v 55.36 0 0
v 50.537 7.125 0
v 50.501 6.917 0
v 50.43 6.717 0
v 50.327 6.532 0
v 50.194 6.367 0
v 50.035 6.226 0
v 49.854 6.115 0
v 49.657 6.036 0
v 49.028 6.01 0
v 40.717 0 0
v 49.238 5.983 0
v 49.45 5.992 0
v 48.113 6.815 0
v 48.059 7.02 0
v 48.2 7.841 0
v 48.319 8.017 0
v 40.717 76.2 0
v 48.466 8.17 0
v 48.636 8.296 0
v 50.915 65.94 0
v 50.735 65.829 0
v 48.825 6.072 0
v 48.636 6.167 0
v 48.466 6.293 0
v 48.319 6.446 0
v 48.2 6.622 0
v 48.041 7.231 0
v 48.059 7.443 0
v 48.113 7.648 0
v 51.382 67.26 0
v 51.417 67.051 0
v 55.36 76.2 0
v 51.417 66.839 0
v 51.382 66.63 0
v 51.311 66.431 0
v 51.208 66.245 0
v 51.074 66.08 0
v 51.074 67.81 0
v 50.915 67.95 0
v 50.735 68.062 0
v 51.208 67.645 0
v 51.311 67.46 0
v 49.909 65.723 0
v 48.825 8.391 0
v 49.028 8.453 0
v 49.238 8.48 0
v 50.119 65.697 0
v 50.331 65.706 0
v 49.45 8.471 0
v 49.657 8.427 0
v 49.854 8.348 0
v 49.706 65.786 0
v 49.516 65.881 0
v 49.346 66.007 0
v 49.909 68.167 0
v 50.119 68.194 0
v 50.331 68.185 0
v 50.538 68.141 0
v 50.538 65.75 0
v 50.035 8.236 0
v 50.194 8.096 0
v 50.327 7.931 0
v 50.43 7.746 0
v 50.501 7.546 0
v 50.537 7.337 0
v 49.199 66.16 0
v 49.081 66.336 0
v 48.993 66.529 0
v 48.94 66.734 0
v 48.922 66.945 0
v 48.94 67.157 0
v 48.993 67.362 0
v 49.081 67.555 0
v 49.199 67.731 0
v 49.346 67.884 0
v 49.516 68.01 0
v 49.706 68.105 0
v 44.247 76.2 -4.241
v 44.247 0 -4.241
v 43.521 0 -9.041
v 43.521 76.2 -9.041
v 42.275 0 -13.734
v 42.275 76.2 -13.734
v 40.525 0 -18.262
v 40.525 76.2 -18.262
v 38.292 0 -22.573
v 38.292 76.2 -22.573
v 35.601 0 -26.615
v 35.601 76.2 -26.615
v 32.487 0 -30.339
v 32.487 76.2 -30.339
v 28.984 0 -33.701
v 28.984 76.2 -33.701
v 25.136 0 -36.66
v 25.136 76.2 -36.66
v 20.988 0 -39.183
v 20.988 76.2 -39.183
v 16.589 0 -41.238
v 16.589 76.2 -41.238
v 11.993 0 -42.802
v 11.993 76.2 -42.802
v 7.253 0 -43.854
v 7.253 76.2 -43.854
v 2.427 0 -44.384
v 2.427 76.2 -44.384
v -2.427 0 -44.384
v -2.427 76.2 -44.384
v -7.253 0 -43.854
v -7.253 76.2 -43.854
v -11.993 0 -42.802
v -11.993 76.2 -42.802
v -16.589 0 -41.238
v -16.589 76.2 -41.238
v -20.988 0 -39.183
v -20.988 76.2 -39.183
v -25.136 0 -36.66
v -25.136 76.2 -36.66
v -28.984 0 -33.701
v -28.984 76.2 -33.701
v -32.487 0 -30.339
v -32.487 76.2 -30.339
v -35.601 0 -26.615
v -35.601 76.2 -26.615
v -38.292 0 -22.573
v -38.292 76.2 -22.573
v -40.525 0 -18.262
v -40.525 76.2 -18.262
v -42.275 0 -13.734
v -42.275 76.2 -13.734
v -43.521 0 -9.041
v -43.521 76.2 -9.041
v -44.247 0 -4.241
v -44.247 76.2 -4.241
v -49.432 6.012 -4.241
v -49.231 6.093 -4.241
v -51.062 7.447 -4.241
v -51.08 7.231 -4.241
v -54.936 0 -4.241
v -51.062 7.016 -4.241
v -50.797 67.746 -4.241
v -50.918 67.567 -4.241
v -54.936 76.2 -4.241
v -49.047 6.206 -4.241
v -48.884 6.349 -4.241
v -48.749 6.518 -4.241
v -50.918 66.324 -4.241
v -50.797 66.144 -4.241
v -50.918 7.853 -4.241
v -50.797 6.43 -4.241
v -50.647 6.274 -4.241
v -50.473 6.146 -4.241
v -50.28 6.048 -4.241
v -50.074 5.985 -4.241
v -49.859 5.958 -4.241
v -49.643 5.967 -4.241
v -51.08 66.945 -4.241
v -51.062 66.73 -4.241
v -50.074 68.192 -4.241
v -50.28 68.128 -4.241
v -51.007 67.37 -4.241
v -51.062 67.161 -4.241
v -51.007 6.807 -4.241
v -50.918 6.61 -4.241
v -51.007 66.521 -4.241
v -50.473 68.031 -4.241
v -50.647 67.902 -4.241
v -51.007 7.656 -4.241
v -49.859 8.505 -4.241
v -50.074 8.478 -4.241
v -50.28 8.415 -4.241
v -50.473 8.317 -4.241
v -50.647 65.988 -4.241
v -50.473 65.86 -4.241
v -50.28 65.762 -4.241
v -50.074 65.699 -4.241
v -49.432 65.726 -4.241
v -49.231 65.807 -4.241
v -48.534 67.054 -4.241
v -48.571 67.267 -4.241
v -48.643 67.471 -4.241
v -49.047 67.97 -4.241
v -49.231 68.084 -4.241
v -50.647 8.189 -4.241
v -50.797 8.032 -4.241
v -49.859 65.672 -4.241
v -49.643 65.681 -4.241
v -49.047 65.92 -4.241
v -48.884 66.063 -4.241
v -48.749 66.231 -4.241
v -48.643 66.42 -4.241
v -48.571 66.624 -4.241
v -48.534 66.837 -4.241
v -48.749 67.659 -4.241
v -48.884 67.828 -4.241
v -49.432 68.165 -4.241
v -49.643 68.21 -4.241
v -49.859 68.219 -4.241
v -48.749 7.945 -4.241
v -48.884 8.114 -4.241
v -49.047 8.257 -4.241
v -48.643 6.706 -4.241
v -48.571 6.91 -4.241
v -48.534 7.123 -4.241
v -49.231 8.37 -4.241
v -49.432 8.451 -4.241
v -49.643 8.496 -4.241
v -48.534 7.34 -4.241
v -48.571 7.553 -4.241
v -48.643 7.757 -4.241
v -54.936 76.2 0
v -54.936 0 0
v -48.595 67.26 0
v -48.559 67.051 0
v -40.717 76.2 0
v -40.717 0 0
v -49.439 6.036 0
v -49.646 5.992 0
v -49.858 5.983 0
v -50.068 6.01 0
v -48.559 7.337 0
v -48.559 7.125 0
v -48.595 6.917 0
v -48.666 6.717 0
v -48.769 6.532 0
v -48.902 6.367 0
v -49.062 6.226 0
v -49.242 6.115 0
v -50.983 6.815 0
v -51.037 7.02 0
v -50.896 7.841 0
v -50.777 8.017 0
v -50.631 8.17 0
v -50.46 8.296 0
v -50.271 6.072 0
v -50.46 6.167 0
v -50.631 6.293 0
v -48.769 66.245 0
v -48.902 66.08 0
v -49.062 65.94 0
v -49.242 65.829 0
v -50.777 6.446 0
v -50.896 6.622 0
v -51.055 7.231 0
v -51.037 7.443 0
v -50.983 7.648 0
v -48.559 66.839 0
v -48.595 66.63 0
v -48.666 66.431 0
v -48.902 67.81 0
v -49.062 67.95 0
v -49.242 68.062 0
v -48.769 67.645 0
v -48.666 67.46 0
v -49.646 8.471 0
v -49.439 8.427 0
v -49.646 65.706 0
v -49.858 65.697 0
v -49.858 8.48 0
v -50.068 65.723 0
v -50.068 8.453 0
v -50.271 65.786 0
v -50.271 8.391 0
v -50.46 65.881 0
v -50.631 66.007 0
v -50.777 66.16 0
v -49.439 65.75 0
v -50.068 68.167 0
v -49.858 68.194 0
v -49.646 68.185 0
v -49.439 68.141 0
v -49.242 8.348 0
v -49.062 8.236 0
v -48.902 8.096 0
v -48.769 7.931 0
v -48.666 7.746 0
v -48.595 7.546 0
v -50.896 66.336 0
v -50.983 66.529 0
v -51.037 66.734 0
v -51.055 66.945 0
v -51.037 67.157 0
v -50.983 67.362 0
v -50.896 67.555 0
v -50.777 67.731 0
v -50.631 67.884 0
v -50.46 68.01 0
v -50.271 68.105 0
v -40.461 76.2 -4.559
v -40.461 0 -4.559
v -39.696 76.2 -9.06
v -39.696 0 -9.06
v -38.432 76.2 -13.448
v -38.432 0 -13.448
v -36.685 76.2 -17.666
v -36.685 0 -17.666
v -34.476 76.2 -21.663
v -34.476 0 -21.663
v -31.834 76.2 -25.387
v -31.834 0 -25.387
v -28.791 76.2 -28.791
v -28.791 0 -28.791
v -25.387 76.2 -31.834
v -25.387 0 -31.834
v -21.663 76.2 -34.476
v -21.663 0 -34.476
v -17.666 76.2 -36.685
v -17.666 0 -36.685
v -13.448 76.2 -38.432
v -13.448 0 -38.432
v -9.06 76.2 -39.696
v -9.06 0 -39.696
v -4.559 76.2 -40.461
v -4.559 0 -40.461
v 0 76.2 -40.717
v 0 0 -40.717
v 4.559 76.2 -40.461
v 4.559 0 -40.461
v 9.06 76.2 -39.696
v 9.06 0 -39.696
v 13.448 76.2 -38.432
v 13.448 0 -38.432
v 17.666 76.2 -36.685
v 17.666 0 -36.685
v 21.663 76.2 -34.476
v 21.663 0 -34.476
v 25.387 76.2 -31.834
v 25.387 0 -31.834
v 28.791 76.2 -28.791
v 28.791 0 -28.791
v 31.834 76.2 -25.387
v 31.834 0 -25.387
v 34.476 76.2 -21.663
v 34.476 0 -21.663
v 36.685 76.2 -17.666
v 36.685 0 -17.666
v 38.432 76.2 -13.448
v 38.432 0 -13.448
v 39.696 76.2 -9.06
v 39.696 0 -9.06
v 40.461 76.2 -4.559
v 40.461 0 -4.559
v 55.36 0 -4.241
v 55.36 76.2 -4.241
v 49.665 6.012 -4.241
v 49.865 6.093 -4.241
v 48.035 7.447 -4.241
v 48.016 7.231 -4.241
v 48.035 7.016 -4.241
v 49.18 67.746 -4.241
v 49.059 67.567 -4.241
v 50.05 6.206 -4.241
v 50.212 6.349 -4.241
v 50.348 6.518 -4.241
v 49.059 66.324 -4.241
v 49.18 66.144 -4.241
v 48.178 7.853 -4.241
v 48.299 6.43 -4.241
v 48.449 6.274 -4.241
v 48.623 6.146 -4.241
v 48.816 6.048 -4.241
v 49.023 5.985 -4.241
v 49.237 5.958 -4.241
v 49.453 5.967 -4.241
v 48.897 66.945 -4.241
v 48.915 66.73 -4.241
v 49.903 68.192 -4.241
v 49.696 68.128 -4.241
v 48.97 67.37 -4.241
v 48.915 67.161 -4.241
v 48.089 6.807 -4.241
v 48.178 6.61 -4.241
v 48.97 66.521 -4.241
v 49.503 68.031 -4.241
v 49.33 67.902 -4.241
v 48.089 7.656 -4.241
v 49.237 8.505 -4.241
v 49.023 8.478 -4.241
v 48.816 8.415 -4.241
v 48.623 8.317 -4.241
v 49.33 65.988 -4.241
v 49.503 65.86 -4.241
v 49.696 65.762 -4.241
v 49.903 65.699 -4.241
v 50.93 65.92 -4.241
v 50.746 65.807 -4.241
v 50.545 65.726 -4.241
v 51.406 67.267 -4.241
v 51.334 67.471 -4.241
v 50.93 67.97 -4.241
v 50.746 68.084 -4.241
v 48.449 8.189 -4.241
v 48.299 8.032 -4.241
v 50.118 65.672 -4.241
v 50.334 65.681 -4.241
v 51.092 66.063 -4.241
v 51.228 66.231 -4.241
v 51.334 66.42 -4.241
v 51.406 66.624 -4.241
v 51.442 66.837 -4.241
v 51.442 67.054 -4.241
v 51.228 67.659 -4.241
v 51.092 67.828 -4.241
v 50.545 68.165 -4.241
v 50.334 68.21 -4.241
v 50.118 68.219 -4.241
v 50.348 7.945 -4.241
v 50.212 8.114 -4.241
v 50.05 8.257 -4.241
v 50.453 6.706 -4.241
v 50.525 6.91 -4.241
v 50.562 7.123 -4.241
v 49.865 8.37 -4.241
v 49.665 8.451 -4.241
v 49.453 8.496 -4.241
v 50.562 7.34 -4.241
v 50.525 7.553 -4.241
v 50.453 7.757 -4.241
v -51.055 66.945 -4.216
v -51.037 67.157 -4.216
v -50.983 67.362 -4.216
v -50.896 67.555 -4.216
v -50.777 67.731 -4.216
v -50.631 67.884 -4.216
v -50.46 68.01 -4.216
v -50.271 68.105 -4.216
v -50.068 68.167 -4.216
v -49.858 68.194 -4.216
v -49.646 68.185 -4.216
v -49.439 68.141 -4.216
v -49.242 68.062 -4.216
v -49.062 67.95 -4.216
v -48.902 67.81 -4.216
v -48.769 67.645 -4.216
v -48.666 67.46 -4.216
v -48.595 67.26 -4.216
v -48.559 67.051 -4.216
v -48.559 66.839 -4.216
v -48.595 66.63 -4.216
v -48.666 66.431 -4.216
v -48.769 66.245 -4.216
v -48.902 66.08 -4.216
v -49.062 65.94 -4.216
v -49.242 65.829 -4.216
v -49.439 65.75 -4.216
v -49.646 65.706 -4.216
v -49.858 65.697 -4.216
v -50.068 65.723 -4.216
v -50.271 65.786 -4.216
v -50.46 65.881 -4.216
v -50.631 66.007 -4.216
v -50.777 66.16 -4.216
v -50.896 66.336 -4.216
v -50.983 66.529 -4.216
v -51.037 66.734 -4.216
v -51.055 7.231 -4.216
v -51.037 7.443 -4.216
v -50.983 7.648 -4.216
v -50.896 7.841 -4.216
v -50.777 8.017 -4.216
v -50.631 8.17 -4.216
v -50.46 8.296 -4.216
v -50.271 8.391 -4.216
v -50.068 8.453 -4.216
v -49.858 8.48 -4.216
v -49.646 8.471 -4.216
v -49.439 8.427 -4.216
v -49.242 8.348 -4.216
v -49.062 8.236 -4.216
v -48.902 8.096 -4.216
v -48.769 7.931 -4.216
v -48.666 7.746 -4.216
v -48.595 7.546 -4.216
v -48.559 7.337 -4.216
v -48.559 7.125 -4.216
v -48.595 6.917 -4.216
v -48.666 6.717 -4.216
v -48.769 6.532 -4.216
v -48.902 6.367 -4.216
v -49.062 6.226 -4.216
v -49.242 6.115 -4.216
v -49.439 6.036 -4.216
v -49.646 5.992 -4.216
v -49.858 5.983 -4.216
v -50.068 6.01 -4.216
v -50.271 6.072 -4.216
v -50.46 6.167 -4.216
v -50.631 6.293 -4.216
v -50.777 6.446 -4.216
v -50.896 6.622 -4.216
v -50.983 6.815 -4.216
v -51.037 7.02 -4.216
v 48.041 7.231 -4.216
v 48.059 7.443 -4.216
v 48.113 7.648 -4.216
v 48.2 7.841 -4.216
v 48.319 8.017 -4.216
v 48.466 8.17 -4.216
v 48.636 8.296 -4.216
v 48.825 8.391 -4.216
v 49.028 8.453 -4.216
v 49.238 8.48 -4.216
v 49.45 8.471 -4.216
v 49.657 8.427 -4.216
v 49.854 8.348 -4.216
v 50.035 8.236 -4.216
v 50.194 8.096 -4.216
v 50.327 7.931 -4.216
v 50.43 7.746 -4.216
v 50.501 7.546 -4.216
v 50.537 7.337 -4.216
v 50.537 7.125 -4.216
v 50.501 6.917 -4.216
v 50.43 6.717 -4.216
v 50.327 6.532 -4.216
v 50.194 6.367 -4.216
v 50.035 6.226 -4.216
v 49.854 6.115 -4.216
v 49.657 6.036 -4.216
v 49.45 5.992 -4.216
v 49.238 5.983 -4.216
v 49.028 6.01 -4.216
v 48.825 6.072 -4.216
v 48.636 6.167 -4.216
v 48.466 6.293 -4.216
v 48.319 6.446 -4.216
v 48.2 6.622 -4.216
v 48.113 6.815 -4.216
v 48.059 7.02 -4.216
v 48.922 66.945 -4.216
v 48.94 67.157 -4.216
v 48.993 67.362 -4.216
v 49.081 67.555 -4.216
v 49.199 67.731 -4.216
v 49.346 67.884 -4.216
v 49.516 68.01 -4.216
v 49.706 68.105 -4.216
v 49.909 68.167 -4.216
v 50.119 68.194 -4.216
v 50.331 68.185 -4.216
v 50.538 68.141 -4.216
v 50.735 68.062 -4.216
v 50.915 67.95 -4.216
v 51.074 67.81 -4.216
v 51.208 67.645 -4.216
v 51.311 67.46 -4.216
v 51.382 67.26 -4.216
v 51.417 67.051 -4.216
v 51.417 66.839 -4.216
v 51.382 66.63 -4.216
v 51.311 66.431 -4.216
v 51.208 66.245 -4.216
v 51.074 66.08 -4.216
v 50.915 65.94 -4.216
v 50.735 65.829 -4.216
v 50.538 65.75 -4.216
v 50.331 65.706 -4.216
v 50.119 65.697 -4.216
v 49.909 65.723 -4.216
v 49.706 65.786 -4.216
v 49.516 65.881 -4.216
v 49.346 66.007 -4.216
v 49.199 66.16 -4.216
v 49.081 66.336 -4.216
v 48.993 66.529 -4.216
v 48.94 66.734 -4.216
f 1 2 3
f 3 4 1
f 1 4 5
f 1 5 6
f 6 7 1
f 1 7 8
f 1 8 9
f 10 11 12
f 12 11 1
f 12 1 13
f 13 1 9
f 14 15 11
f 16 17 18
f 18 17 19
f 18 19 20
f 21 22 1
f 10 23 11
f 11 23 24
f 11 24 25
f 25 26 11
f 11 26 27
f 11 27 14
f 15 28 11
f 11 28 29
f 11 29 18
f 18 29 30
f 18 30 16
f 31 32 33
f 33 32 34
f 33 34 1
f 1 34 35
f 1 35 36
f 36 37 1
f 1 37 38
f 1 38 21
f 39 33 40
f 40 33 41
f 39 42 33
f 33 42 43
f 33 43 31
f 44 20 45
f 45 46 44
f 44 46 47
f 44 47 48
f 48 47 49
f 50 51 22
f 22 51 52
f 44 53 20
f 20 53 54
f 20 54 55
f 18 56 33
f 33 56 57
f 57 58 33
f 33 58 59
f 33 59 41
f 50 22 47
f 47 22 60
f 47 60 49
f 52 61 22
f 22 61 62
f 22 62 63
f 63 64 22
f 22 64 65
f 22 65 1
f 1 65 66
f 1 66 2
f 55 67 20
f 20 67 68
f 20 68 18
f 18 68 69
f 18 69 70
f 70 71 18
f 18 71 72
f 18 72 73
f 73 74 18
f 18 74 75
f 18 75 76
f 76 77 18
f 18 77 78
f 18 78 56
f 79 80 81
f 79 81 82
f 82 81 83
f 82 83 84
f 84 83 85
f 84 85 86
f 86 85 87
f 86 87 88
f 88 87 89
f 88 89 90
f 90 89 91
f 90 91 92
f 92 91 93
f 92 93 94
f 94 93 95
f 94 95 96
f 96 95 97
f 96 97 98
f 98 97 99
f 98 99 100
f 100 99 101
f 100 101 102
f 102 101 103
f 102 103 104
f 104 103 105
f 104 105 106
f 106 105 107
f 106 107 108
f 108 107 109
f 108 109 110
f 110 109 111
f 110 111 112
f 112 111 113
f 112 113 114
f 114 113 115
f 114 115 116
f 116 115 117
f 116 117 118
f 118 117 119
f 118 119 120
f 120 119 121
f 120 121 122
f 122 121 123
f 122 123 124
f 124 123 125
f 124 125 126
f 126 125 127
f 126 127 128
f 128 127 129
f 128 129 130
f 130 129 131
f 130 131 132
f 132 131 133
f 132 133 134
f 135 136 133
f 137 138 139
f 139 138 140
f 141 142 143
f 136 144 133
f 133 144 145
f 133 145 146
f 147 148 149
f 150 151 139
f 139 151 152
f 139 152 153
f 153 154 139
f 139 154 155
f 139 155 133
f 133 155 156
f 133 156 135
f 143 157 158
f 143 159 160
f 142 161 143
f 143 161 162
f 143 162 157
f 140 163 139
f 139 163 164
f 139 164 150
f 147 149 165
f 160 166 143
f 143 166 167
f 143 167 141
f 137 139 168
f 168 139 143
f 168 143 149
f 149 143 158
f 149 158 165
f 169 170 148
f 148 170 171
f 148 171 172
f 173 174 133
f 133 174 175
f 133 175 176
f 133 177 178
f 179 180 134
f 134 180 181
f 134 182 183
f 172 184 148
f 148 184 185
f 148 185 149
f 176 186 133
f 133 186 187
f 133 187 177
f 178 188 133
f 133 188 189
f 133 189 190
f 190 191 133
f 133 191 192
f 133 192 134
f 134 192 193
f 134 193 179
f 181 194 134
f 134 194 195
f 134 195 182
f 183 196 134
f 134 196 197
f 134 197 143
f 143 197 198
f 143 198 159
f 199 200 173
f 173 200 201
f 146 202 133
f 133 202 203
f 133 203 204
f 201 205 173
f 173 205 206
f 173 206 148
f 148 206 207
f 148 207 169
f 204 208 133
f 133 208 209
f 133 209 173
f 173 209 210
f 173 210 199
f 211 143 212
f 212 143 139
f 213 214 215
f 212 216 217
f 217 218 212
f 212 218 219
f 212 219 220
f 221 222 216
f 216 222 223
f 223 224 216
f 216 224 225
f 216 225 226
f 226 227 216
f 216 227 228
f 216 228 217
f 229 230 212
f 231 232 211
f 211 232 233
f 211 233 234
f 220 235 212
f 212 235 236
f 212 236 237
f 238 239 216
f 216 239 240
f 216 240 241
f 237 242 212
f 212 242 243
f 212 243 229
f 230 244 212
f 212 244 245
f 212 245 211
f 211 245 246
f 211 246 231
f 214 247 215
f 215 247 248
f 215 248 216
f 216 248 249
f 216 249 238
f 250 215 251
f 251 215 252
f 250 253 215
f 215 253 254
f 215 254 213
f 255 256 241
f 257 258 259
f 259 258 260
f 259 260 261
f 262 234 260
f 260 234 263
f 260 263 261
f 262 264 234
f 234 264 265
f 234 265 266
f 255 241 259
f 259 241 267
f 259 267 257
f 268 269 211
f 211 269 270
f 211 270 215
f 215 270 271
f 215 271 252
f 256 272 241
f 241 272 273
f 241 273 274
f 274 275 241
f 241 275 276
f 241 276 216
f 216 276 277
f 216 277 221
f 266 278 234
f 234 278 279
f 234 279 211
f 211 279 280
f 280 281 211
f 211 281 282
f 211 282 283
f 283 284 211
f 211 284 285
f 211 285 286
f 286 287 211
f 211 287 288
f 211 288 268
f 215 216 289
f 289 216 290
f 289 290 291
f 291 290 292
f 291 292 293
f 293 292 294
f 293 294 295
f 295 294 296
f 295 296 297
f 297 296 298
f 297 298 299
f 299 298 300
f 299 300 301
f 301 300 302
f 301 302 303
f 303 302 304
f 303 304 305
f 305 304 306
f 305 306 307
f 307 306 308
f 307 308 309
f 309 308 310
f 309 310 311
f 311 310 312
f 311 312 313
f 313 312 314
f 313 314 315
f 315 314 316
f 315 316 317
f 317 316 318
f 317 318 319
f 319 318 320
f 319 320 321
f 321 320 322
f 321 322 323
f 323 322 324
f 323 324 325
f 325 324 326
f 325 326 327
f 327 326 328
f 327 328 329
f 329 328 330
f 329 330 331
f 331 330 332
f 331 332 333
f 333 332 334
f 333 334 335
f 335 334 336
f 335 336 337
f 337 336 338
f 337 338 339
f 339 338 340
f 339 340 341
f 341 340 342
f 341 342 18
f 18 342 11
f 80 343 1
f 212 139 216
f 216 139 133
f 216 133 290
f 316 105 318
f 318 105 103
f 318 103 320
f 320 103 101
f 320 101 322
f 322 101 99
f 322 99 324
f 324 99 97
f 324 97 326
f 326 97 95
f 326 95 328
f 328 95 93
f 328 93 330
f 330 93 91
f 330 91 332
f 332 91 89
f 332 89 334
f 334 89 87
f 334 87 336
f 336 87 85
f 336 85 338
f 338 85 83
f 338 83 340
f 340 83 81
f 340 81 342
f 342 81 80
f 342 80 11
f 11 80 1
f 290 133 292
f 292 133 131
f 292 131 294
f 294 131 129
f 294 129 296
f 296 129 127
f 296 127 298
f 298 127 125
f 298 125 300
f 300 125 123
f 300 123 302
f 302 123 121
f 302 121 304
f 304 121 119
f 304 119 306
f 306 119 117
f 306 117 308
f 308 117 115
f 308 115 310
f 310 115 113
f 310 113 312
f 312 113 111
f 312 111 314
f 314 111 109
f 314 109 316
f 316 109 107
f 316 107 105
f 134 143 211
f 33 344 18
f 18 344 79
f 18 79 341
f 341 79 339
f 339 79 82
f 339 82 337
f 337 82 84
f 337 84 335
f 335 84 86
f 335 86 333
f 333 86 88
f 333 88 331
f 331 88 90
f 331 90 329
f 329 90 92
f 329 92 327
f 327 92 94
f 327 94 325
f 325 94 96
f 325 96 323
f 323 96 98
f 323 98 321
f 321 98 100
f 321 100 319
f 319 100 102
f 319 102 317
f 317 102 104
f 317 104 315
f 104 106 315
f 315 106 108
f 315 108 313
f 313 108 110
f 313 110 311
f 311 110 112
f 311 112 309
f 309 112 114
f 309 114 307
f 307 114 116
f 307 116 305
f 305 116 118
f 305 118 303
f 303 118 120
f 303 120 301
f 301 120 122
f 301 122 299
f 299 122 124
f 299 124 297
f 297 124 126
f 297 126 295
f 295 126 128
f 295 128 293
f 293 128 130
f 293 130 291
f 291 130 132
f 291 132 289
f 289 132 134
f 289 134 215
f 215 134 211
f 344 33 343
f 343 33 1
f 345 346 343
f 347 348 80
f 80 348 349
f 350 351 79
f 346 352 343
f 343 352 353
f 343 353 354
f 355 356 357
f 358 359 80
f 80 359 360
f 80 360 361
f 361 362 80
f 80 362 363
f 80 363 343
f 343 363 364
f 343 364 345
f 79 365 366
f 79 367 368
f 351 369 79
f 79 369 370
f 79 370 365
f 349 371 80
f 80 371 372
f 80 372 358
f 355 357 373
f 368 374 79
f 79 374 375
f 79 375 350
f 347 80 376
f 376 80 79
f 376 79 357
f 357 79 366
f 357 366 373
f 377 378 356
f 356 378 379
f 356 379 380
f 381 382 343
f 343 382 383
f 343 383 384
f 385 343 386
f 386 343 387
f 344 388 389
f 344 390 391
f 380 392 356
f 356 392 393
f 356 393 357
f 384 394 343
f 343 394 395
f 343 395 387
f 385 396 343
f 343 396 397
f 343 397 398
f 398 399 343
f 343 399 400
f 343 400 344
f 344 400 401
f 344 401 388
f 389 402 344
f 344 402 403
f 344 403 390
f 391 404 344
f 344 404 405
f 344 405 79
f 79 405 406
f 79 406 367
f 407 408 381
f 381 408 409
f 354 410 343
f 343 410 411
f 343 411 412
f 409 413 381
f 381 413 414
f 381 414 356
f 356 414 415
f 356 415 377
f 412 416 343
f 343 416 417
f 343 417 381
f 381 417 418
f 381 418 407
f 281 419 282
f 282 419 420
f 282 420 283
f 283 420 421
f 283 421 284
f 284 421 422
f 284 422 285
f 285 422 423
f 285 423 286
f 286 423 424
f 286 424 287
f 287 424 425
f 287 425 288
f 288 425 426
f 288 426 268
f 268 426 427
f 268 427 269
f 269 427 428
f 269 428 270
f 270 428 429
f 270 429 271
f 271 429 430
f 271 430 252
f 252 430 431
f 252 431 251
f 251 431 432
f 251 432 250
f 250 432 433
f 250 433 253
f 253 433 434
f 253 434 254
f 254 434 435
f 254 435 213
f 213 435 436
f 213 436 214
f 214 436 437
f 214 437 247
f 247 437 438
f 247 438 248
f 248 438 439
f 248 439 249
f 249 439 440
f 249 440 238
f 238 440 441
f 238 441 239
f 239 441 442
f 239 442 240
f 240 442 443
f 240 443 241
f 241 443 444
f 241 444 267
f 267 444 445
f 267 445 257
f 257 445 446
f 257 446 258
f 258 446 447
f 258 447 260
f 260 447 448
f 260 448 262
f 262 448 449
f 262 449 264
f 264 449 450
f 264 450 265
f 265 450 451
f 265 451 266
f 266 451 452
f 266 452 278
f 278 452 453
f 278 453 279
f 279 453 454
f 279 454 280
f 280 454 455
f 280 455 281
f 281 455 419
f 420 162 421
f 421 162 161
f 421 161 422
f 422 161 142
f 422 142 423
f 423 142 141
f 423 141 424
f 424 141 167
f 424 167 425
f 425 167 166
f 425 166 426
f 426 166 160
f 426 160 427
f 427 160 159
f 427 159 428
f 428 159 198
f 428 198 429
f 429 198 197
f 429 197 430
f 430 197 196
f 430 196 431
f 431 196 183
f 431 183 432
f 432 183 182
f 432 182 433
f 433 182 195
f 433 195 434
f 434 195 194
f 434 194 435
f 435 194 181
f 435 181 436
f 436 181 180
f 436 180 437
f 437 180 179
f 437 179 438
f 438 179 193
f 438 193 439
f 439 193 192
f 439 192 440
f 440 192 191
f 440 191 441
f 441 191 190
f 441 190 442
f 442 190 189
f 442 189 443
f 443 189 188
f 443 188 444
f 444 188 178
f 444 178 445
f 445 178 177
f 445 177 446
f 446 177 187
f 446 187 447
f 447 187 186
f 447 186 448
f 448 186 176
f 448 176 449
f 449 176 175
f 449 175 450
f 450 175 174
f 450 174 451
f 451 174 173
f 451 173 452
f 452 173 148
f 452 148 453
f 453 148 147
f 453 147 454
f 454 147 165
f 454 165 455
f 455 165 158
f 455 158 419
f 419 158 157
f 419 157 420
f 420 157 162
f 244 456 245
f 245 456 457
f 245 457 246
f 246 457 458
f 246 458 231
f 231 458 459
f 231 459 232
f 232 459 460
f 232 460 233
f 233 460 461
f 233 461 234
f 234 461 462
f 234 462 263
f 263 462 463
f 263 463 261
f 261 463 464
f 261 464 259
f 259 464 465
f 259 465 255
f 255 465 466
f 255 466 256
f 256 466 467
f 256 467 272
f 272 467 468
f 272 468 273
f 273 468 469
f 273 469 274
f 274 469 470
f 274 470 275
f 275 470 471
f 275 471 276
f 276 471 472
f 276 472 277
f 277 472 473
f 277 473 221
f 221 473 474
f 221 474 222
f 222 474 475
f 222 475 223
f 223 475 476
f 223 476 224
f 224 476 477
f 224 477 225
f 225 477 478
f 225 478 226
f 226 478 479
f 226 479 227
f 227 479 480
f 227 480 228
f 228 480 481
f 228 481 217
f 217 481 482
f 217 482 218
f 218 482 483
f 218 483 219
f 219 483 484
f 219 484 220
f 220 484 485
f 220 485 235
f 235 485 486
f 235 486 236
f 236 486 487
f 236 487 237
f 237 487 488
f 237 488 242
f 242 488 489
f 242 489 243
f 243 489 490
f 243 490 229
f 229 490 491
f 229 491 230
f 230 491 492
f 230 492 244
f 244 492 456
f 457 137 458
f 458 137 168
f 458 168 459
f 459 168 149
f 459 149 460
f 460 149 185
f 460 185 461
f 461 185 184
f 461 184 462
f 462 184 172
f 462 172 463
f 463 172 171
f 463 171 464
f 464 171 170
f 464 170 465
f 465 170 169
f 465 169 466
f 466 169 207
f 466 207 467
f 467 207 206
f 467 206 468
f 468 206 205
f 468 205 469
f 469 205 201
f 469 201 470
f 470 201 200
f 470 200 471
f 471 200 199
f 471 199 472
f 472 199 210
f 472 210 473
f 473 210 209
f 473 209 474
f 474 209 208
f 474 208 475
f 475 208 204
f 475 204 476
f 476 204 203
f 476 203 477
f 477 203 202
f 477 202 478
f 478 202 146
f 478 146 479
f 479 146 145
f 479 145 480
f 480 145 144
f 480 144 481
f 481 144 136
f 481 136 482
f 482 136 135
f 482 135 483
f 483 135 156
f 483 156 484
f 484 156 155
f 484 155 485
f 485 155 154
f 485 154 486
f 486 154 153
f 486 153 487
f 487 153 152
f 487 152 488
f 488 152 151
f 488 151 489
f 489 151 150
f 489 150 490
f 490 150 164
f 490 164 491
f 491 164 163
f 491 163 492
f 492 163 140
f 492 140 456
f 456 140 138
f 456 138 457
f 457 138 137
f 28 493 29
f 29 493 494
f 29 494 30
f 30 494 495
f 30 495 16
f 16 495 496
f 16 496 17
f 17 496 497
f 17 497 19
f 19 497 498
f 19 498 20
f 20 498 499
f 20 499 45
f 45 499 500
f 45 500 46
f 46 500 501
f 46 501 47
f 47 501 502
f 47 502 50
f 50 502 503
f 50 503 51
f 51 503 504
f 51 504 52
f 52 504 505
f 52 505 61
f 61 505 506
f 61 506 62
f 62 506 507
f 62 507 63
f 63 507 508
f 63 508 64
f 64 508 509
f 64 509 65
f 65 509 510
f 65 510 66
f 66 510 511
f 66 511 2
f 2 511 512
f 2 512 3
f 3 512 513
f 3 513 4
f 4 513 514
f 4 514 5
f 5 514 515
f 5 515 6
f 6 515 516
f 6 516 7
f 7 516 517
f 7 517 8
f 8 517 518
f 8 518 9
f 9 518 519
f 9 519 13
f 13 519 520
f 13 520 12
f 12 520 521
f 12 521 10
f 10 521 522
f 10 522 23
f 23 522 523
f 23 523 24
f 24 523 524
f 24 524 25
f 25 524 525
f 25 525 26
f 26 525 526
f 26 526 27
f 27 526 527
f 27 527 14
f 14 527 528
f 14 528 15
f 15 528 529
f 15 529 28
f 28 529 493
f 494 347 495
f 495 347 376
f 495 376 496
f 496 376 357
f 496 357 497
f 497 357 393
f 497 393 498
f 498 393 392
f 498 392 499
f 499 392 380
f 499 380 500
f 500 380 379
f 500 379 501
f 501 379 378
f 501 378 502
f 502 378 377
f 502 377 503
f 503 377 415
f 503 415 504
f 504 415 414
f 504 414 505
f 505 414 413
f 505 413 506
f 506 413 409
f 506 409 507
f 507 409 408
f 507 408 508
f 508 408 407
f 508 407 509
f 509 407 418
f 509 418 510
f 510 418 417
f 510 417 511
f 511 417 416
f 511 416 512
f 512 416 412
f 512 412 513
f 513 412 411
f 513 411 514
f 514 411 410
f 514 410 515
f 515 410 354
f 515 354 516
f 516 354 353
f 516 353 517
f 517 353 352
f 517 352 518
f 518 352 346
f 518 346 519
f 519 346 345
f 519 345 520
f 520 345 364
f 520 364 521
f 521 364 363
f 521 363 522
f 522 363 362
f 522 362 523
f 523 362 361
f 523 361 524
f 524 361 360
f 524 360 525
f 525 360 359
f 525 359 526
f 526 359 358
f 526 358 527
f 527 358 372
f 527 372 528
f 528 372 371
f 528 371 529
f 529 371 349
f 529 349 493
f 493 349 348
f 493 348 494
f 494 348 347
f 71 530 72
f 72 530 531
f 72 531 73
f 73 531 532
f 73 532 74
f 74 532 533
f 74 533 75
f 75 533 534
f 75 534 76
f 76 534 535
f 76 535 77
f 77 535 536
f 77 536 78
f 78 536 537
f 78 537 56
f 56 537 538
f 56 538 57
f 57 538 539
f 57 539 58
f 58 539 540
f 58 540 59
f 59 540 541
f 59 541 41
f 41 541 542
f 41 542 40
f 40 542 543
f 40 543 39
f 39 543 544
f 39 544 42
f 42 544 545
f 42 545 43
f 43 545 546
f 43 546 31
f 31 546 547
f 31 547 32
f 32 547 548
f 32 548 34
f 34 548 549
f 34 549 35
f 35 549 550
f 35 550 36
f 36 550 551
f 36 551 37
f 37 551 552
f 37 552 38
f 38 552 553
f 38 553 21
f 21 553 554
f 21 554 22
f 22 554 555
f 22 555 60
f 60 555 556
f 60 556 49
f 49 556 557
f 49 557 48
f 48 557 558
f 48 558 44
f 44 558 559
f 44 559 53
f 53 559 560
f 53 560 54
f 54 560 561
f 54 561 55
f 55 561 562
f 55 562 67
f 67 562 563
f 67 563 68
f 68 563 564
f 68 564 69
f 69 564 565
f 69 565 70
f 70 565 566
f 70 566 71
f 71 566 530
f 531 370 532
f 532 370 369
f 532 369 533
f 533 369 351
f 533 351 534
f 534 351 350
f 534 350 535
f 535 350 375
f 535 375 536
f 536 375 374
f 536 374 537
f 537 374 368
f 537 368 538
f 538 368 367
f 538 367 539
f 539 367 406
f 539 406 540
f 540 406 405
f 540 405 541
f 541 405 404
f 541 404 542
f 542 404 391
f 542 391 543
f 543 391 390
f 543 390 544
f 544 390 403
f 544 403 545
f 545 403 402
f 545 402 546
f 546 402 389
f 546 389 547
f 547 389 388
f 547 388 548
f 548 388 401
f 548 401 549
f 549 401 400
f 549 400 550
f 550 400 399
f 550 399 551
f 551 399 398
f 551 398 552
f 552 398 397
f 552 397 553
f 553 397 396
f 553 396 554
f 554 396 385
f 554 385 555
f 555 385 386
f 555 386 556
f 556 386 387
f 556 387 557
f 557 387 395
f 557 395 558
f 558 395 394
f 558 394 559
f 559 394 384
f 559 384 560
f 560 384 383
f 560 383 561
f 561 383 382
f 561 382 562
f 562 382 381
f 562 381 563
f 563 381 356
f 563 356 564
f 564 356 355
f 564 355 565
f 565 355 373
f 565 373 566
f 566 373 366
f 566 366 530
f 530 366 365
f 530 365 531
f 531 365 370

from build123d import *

# Parameters (mm, degrees)
BOSS_EXTRUDE1_DEPTH                   = 76.2
TAP_DRILL_FOR_M3X0_5_TAP1_D           = 2.5
TAP_DRILL_FOR_M3X0_5_TAP1_CSINK_D     = 2.55
TAP_DRILL_FOR_M3X0_5_TAP1_CSINK_ANGLE = 90


with BuildPart() as part:
    # Sketch1 → Boss-Extrude1 (new body)
    with BuildSketch(Plane(origin=(0, 0, 0), x_dir=(1, 0, 0), z_dir=(0, 1, 0))):
        with BuildLine():
            Line((-44.247201079, 4.24119048), (-54.936217795, 4.24119048))
            Line((-54.936217795, 4.24119048), (-54.936217795, 0))
            Line((-54.936217795, 0), (-40.716846583, 0))
            ThreePointArc((-40.716846583, 0), (0, 40.716846583), (40.716846583, 0))
            Line((40.716846583, 0), (55.359579402, 0))
            Line((55.359579402, 0), (55.359579402, 4.24119048))
            Line((55.359579402, 4.24119048), (44.247201079, 4.24119048))
            ThreePointArc((44.247201079, 4.24119048), (0, 44.45), (-44.247201079, 4.24119048))
        make_face()
    extrude(amount=BOSS_EXTRUDE1_DEPTH)

    # Tap Drill for M3x0.5 Tap1 (through all)
    with Locations(Plane(origin=(50.171881224, 66.945390665, -4.24119048), x_dir=(-1, 0, 0), z_dir=(0, 0, -1))):
        with Locations((0, 0), (0.880500078, -59.713914359), (99.976781548, -59.713914359), (99.976781548, 0)):
            CounterSinkHole(TAP_DRILL_FOR_M3X0_5_TAP1_D / 2, TAP_DRILL_FOR_M3X0_5_TAP1_CSINK_D / 2, counter_sink_angle=TAP_DRILL_FOR_M3X0_5_TAP1_CSINK_ANGLE)


solid = part.part
